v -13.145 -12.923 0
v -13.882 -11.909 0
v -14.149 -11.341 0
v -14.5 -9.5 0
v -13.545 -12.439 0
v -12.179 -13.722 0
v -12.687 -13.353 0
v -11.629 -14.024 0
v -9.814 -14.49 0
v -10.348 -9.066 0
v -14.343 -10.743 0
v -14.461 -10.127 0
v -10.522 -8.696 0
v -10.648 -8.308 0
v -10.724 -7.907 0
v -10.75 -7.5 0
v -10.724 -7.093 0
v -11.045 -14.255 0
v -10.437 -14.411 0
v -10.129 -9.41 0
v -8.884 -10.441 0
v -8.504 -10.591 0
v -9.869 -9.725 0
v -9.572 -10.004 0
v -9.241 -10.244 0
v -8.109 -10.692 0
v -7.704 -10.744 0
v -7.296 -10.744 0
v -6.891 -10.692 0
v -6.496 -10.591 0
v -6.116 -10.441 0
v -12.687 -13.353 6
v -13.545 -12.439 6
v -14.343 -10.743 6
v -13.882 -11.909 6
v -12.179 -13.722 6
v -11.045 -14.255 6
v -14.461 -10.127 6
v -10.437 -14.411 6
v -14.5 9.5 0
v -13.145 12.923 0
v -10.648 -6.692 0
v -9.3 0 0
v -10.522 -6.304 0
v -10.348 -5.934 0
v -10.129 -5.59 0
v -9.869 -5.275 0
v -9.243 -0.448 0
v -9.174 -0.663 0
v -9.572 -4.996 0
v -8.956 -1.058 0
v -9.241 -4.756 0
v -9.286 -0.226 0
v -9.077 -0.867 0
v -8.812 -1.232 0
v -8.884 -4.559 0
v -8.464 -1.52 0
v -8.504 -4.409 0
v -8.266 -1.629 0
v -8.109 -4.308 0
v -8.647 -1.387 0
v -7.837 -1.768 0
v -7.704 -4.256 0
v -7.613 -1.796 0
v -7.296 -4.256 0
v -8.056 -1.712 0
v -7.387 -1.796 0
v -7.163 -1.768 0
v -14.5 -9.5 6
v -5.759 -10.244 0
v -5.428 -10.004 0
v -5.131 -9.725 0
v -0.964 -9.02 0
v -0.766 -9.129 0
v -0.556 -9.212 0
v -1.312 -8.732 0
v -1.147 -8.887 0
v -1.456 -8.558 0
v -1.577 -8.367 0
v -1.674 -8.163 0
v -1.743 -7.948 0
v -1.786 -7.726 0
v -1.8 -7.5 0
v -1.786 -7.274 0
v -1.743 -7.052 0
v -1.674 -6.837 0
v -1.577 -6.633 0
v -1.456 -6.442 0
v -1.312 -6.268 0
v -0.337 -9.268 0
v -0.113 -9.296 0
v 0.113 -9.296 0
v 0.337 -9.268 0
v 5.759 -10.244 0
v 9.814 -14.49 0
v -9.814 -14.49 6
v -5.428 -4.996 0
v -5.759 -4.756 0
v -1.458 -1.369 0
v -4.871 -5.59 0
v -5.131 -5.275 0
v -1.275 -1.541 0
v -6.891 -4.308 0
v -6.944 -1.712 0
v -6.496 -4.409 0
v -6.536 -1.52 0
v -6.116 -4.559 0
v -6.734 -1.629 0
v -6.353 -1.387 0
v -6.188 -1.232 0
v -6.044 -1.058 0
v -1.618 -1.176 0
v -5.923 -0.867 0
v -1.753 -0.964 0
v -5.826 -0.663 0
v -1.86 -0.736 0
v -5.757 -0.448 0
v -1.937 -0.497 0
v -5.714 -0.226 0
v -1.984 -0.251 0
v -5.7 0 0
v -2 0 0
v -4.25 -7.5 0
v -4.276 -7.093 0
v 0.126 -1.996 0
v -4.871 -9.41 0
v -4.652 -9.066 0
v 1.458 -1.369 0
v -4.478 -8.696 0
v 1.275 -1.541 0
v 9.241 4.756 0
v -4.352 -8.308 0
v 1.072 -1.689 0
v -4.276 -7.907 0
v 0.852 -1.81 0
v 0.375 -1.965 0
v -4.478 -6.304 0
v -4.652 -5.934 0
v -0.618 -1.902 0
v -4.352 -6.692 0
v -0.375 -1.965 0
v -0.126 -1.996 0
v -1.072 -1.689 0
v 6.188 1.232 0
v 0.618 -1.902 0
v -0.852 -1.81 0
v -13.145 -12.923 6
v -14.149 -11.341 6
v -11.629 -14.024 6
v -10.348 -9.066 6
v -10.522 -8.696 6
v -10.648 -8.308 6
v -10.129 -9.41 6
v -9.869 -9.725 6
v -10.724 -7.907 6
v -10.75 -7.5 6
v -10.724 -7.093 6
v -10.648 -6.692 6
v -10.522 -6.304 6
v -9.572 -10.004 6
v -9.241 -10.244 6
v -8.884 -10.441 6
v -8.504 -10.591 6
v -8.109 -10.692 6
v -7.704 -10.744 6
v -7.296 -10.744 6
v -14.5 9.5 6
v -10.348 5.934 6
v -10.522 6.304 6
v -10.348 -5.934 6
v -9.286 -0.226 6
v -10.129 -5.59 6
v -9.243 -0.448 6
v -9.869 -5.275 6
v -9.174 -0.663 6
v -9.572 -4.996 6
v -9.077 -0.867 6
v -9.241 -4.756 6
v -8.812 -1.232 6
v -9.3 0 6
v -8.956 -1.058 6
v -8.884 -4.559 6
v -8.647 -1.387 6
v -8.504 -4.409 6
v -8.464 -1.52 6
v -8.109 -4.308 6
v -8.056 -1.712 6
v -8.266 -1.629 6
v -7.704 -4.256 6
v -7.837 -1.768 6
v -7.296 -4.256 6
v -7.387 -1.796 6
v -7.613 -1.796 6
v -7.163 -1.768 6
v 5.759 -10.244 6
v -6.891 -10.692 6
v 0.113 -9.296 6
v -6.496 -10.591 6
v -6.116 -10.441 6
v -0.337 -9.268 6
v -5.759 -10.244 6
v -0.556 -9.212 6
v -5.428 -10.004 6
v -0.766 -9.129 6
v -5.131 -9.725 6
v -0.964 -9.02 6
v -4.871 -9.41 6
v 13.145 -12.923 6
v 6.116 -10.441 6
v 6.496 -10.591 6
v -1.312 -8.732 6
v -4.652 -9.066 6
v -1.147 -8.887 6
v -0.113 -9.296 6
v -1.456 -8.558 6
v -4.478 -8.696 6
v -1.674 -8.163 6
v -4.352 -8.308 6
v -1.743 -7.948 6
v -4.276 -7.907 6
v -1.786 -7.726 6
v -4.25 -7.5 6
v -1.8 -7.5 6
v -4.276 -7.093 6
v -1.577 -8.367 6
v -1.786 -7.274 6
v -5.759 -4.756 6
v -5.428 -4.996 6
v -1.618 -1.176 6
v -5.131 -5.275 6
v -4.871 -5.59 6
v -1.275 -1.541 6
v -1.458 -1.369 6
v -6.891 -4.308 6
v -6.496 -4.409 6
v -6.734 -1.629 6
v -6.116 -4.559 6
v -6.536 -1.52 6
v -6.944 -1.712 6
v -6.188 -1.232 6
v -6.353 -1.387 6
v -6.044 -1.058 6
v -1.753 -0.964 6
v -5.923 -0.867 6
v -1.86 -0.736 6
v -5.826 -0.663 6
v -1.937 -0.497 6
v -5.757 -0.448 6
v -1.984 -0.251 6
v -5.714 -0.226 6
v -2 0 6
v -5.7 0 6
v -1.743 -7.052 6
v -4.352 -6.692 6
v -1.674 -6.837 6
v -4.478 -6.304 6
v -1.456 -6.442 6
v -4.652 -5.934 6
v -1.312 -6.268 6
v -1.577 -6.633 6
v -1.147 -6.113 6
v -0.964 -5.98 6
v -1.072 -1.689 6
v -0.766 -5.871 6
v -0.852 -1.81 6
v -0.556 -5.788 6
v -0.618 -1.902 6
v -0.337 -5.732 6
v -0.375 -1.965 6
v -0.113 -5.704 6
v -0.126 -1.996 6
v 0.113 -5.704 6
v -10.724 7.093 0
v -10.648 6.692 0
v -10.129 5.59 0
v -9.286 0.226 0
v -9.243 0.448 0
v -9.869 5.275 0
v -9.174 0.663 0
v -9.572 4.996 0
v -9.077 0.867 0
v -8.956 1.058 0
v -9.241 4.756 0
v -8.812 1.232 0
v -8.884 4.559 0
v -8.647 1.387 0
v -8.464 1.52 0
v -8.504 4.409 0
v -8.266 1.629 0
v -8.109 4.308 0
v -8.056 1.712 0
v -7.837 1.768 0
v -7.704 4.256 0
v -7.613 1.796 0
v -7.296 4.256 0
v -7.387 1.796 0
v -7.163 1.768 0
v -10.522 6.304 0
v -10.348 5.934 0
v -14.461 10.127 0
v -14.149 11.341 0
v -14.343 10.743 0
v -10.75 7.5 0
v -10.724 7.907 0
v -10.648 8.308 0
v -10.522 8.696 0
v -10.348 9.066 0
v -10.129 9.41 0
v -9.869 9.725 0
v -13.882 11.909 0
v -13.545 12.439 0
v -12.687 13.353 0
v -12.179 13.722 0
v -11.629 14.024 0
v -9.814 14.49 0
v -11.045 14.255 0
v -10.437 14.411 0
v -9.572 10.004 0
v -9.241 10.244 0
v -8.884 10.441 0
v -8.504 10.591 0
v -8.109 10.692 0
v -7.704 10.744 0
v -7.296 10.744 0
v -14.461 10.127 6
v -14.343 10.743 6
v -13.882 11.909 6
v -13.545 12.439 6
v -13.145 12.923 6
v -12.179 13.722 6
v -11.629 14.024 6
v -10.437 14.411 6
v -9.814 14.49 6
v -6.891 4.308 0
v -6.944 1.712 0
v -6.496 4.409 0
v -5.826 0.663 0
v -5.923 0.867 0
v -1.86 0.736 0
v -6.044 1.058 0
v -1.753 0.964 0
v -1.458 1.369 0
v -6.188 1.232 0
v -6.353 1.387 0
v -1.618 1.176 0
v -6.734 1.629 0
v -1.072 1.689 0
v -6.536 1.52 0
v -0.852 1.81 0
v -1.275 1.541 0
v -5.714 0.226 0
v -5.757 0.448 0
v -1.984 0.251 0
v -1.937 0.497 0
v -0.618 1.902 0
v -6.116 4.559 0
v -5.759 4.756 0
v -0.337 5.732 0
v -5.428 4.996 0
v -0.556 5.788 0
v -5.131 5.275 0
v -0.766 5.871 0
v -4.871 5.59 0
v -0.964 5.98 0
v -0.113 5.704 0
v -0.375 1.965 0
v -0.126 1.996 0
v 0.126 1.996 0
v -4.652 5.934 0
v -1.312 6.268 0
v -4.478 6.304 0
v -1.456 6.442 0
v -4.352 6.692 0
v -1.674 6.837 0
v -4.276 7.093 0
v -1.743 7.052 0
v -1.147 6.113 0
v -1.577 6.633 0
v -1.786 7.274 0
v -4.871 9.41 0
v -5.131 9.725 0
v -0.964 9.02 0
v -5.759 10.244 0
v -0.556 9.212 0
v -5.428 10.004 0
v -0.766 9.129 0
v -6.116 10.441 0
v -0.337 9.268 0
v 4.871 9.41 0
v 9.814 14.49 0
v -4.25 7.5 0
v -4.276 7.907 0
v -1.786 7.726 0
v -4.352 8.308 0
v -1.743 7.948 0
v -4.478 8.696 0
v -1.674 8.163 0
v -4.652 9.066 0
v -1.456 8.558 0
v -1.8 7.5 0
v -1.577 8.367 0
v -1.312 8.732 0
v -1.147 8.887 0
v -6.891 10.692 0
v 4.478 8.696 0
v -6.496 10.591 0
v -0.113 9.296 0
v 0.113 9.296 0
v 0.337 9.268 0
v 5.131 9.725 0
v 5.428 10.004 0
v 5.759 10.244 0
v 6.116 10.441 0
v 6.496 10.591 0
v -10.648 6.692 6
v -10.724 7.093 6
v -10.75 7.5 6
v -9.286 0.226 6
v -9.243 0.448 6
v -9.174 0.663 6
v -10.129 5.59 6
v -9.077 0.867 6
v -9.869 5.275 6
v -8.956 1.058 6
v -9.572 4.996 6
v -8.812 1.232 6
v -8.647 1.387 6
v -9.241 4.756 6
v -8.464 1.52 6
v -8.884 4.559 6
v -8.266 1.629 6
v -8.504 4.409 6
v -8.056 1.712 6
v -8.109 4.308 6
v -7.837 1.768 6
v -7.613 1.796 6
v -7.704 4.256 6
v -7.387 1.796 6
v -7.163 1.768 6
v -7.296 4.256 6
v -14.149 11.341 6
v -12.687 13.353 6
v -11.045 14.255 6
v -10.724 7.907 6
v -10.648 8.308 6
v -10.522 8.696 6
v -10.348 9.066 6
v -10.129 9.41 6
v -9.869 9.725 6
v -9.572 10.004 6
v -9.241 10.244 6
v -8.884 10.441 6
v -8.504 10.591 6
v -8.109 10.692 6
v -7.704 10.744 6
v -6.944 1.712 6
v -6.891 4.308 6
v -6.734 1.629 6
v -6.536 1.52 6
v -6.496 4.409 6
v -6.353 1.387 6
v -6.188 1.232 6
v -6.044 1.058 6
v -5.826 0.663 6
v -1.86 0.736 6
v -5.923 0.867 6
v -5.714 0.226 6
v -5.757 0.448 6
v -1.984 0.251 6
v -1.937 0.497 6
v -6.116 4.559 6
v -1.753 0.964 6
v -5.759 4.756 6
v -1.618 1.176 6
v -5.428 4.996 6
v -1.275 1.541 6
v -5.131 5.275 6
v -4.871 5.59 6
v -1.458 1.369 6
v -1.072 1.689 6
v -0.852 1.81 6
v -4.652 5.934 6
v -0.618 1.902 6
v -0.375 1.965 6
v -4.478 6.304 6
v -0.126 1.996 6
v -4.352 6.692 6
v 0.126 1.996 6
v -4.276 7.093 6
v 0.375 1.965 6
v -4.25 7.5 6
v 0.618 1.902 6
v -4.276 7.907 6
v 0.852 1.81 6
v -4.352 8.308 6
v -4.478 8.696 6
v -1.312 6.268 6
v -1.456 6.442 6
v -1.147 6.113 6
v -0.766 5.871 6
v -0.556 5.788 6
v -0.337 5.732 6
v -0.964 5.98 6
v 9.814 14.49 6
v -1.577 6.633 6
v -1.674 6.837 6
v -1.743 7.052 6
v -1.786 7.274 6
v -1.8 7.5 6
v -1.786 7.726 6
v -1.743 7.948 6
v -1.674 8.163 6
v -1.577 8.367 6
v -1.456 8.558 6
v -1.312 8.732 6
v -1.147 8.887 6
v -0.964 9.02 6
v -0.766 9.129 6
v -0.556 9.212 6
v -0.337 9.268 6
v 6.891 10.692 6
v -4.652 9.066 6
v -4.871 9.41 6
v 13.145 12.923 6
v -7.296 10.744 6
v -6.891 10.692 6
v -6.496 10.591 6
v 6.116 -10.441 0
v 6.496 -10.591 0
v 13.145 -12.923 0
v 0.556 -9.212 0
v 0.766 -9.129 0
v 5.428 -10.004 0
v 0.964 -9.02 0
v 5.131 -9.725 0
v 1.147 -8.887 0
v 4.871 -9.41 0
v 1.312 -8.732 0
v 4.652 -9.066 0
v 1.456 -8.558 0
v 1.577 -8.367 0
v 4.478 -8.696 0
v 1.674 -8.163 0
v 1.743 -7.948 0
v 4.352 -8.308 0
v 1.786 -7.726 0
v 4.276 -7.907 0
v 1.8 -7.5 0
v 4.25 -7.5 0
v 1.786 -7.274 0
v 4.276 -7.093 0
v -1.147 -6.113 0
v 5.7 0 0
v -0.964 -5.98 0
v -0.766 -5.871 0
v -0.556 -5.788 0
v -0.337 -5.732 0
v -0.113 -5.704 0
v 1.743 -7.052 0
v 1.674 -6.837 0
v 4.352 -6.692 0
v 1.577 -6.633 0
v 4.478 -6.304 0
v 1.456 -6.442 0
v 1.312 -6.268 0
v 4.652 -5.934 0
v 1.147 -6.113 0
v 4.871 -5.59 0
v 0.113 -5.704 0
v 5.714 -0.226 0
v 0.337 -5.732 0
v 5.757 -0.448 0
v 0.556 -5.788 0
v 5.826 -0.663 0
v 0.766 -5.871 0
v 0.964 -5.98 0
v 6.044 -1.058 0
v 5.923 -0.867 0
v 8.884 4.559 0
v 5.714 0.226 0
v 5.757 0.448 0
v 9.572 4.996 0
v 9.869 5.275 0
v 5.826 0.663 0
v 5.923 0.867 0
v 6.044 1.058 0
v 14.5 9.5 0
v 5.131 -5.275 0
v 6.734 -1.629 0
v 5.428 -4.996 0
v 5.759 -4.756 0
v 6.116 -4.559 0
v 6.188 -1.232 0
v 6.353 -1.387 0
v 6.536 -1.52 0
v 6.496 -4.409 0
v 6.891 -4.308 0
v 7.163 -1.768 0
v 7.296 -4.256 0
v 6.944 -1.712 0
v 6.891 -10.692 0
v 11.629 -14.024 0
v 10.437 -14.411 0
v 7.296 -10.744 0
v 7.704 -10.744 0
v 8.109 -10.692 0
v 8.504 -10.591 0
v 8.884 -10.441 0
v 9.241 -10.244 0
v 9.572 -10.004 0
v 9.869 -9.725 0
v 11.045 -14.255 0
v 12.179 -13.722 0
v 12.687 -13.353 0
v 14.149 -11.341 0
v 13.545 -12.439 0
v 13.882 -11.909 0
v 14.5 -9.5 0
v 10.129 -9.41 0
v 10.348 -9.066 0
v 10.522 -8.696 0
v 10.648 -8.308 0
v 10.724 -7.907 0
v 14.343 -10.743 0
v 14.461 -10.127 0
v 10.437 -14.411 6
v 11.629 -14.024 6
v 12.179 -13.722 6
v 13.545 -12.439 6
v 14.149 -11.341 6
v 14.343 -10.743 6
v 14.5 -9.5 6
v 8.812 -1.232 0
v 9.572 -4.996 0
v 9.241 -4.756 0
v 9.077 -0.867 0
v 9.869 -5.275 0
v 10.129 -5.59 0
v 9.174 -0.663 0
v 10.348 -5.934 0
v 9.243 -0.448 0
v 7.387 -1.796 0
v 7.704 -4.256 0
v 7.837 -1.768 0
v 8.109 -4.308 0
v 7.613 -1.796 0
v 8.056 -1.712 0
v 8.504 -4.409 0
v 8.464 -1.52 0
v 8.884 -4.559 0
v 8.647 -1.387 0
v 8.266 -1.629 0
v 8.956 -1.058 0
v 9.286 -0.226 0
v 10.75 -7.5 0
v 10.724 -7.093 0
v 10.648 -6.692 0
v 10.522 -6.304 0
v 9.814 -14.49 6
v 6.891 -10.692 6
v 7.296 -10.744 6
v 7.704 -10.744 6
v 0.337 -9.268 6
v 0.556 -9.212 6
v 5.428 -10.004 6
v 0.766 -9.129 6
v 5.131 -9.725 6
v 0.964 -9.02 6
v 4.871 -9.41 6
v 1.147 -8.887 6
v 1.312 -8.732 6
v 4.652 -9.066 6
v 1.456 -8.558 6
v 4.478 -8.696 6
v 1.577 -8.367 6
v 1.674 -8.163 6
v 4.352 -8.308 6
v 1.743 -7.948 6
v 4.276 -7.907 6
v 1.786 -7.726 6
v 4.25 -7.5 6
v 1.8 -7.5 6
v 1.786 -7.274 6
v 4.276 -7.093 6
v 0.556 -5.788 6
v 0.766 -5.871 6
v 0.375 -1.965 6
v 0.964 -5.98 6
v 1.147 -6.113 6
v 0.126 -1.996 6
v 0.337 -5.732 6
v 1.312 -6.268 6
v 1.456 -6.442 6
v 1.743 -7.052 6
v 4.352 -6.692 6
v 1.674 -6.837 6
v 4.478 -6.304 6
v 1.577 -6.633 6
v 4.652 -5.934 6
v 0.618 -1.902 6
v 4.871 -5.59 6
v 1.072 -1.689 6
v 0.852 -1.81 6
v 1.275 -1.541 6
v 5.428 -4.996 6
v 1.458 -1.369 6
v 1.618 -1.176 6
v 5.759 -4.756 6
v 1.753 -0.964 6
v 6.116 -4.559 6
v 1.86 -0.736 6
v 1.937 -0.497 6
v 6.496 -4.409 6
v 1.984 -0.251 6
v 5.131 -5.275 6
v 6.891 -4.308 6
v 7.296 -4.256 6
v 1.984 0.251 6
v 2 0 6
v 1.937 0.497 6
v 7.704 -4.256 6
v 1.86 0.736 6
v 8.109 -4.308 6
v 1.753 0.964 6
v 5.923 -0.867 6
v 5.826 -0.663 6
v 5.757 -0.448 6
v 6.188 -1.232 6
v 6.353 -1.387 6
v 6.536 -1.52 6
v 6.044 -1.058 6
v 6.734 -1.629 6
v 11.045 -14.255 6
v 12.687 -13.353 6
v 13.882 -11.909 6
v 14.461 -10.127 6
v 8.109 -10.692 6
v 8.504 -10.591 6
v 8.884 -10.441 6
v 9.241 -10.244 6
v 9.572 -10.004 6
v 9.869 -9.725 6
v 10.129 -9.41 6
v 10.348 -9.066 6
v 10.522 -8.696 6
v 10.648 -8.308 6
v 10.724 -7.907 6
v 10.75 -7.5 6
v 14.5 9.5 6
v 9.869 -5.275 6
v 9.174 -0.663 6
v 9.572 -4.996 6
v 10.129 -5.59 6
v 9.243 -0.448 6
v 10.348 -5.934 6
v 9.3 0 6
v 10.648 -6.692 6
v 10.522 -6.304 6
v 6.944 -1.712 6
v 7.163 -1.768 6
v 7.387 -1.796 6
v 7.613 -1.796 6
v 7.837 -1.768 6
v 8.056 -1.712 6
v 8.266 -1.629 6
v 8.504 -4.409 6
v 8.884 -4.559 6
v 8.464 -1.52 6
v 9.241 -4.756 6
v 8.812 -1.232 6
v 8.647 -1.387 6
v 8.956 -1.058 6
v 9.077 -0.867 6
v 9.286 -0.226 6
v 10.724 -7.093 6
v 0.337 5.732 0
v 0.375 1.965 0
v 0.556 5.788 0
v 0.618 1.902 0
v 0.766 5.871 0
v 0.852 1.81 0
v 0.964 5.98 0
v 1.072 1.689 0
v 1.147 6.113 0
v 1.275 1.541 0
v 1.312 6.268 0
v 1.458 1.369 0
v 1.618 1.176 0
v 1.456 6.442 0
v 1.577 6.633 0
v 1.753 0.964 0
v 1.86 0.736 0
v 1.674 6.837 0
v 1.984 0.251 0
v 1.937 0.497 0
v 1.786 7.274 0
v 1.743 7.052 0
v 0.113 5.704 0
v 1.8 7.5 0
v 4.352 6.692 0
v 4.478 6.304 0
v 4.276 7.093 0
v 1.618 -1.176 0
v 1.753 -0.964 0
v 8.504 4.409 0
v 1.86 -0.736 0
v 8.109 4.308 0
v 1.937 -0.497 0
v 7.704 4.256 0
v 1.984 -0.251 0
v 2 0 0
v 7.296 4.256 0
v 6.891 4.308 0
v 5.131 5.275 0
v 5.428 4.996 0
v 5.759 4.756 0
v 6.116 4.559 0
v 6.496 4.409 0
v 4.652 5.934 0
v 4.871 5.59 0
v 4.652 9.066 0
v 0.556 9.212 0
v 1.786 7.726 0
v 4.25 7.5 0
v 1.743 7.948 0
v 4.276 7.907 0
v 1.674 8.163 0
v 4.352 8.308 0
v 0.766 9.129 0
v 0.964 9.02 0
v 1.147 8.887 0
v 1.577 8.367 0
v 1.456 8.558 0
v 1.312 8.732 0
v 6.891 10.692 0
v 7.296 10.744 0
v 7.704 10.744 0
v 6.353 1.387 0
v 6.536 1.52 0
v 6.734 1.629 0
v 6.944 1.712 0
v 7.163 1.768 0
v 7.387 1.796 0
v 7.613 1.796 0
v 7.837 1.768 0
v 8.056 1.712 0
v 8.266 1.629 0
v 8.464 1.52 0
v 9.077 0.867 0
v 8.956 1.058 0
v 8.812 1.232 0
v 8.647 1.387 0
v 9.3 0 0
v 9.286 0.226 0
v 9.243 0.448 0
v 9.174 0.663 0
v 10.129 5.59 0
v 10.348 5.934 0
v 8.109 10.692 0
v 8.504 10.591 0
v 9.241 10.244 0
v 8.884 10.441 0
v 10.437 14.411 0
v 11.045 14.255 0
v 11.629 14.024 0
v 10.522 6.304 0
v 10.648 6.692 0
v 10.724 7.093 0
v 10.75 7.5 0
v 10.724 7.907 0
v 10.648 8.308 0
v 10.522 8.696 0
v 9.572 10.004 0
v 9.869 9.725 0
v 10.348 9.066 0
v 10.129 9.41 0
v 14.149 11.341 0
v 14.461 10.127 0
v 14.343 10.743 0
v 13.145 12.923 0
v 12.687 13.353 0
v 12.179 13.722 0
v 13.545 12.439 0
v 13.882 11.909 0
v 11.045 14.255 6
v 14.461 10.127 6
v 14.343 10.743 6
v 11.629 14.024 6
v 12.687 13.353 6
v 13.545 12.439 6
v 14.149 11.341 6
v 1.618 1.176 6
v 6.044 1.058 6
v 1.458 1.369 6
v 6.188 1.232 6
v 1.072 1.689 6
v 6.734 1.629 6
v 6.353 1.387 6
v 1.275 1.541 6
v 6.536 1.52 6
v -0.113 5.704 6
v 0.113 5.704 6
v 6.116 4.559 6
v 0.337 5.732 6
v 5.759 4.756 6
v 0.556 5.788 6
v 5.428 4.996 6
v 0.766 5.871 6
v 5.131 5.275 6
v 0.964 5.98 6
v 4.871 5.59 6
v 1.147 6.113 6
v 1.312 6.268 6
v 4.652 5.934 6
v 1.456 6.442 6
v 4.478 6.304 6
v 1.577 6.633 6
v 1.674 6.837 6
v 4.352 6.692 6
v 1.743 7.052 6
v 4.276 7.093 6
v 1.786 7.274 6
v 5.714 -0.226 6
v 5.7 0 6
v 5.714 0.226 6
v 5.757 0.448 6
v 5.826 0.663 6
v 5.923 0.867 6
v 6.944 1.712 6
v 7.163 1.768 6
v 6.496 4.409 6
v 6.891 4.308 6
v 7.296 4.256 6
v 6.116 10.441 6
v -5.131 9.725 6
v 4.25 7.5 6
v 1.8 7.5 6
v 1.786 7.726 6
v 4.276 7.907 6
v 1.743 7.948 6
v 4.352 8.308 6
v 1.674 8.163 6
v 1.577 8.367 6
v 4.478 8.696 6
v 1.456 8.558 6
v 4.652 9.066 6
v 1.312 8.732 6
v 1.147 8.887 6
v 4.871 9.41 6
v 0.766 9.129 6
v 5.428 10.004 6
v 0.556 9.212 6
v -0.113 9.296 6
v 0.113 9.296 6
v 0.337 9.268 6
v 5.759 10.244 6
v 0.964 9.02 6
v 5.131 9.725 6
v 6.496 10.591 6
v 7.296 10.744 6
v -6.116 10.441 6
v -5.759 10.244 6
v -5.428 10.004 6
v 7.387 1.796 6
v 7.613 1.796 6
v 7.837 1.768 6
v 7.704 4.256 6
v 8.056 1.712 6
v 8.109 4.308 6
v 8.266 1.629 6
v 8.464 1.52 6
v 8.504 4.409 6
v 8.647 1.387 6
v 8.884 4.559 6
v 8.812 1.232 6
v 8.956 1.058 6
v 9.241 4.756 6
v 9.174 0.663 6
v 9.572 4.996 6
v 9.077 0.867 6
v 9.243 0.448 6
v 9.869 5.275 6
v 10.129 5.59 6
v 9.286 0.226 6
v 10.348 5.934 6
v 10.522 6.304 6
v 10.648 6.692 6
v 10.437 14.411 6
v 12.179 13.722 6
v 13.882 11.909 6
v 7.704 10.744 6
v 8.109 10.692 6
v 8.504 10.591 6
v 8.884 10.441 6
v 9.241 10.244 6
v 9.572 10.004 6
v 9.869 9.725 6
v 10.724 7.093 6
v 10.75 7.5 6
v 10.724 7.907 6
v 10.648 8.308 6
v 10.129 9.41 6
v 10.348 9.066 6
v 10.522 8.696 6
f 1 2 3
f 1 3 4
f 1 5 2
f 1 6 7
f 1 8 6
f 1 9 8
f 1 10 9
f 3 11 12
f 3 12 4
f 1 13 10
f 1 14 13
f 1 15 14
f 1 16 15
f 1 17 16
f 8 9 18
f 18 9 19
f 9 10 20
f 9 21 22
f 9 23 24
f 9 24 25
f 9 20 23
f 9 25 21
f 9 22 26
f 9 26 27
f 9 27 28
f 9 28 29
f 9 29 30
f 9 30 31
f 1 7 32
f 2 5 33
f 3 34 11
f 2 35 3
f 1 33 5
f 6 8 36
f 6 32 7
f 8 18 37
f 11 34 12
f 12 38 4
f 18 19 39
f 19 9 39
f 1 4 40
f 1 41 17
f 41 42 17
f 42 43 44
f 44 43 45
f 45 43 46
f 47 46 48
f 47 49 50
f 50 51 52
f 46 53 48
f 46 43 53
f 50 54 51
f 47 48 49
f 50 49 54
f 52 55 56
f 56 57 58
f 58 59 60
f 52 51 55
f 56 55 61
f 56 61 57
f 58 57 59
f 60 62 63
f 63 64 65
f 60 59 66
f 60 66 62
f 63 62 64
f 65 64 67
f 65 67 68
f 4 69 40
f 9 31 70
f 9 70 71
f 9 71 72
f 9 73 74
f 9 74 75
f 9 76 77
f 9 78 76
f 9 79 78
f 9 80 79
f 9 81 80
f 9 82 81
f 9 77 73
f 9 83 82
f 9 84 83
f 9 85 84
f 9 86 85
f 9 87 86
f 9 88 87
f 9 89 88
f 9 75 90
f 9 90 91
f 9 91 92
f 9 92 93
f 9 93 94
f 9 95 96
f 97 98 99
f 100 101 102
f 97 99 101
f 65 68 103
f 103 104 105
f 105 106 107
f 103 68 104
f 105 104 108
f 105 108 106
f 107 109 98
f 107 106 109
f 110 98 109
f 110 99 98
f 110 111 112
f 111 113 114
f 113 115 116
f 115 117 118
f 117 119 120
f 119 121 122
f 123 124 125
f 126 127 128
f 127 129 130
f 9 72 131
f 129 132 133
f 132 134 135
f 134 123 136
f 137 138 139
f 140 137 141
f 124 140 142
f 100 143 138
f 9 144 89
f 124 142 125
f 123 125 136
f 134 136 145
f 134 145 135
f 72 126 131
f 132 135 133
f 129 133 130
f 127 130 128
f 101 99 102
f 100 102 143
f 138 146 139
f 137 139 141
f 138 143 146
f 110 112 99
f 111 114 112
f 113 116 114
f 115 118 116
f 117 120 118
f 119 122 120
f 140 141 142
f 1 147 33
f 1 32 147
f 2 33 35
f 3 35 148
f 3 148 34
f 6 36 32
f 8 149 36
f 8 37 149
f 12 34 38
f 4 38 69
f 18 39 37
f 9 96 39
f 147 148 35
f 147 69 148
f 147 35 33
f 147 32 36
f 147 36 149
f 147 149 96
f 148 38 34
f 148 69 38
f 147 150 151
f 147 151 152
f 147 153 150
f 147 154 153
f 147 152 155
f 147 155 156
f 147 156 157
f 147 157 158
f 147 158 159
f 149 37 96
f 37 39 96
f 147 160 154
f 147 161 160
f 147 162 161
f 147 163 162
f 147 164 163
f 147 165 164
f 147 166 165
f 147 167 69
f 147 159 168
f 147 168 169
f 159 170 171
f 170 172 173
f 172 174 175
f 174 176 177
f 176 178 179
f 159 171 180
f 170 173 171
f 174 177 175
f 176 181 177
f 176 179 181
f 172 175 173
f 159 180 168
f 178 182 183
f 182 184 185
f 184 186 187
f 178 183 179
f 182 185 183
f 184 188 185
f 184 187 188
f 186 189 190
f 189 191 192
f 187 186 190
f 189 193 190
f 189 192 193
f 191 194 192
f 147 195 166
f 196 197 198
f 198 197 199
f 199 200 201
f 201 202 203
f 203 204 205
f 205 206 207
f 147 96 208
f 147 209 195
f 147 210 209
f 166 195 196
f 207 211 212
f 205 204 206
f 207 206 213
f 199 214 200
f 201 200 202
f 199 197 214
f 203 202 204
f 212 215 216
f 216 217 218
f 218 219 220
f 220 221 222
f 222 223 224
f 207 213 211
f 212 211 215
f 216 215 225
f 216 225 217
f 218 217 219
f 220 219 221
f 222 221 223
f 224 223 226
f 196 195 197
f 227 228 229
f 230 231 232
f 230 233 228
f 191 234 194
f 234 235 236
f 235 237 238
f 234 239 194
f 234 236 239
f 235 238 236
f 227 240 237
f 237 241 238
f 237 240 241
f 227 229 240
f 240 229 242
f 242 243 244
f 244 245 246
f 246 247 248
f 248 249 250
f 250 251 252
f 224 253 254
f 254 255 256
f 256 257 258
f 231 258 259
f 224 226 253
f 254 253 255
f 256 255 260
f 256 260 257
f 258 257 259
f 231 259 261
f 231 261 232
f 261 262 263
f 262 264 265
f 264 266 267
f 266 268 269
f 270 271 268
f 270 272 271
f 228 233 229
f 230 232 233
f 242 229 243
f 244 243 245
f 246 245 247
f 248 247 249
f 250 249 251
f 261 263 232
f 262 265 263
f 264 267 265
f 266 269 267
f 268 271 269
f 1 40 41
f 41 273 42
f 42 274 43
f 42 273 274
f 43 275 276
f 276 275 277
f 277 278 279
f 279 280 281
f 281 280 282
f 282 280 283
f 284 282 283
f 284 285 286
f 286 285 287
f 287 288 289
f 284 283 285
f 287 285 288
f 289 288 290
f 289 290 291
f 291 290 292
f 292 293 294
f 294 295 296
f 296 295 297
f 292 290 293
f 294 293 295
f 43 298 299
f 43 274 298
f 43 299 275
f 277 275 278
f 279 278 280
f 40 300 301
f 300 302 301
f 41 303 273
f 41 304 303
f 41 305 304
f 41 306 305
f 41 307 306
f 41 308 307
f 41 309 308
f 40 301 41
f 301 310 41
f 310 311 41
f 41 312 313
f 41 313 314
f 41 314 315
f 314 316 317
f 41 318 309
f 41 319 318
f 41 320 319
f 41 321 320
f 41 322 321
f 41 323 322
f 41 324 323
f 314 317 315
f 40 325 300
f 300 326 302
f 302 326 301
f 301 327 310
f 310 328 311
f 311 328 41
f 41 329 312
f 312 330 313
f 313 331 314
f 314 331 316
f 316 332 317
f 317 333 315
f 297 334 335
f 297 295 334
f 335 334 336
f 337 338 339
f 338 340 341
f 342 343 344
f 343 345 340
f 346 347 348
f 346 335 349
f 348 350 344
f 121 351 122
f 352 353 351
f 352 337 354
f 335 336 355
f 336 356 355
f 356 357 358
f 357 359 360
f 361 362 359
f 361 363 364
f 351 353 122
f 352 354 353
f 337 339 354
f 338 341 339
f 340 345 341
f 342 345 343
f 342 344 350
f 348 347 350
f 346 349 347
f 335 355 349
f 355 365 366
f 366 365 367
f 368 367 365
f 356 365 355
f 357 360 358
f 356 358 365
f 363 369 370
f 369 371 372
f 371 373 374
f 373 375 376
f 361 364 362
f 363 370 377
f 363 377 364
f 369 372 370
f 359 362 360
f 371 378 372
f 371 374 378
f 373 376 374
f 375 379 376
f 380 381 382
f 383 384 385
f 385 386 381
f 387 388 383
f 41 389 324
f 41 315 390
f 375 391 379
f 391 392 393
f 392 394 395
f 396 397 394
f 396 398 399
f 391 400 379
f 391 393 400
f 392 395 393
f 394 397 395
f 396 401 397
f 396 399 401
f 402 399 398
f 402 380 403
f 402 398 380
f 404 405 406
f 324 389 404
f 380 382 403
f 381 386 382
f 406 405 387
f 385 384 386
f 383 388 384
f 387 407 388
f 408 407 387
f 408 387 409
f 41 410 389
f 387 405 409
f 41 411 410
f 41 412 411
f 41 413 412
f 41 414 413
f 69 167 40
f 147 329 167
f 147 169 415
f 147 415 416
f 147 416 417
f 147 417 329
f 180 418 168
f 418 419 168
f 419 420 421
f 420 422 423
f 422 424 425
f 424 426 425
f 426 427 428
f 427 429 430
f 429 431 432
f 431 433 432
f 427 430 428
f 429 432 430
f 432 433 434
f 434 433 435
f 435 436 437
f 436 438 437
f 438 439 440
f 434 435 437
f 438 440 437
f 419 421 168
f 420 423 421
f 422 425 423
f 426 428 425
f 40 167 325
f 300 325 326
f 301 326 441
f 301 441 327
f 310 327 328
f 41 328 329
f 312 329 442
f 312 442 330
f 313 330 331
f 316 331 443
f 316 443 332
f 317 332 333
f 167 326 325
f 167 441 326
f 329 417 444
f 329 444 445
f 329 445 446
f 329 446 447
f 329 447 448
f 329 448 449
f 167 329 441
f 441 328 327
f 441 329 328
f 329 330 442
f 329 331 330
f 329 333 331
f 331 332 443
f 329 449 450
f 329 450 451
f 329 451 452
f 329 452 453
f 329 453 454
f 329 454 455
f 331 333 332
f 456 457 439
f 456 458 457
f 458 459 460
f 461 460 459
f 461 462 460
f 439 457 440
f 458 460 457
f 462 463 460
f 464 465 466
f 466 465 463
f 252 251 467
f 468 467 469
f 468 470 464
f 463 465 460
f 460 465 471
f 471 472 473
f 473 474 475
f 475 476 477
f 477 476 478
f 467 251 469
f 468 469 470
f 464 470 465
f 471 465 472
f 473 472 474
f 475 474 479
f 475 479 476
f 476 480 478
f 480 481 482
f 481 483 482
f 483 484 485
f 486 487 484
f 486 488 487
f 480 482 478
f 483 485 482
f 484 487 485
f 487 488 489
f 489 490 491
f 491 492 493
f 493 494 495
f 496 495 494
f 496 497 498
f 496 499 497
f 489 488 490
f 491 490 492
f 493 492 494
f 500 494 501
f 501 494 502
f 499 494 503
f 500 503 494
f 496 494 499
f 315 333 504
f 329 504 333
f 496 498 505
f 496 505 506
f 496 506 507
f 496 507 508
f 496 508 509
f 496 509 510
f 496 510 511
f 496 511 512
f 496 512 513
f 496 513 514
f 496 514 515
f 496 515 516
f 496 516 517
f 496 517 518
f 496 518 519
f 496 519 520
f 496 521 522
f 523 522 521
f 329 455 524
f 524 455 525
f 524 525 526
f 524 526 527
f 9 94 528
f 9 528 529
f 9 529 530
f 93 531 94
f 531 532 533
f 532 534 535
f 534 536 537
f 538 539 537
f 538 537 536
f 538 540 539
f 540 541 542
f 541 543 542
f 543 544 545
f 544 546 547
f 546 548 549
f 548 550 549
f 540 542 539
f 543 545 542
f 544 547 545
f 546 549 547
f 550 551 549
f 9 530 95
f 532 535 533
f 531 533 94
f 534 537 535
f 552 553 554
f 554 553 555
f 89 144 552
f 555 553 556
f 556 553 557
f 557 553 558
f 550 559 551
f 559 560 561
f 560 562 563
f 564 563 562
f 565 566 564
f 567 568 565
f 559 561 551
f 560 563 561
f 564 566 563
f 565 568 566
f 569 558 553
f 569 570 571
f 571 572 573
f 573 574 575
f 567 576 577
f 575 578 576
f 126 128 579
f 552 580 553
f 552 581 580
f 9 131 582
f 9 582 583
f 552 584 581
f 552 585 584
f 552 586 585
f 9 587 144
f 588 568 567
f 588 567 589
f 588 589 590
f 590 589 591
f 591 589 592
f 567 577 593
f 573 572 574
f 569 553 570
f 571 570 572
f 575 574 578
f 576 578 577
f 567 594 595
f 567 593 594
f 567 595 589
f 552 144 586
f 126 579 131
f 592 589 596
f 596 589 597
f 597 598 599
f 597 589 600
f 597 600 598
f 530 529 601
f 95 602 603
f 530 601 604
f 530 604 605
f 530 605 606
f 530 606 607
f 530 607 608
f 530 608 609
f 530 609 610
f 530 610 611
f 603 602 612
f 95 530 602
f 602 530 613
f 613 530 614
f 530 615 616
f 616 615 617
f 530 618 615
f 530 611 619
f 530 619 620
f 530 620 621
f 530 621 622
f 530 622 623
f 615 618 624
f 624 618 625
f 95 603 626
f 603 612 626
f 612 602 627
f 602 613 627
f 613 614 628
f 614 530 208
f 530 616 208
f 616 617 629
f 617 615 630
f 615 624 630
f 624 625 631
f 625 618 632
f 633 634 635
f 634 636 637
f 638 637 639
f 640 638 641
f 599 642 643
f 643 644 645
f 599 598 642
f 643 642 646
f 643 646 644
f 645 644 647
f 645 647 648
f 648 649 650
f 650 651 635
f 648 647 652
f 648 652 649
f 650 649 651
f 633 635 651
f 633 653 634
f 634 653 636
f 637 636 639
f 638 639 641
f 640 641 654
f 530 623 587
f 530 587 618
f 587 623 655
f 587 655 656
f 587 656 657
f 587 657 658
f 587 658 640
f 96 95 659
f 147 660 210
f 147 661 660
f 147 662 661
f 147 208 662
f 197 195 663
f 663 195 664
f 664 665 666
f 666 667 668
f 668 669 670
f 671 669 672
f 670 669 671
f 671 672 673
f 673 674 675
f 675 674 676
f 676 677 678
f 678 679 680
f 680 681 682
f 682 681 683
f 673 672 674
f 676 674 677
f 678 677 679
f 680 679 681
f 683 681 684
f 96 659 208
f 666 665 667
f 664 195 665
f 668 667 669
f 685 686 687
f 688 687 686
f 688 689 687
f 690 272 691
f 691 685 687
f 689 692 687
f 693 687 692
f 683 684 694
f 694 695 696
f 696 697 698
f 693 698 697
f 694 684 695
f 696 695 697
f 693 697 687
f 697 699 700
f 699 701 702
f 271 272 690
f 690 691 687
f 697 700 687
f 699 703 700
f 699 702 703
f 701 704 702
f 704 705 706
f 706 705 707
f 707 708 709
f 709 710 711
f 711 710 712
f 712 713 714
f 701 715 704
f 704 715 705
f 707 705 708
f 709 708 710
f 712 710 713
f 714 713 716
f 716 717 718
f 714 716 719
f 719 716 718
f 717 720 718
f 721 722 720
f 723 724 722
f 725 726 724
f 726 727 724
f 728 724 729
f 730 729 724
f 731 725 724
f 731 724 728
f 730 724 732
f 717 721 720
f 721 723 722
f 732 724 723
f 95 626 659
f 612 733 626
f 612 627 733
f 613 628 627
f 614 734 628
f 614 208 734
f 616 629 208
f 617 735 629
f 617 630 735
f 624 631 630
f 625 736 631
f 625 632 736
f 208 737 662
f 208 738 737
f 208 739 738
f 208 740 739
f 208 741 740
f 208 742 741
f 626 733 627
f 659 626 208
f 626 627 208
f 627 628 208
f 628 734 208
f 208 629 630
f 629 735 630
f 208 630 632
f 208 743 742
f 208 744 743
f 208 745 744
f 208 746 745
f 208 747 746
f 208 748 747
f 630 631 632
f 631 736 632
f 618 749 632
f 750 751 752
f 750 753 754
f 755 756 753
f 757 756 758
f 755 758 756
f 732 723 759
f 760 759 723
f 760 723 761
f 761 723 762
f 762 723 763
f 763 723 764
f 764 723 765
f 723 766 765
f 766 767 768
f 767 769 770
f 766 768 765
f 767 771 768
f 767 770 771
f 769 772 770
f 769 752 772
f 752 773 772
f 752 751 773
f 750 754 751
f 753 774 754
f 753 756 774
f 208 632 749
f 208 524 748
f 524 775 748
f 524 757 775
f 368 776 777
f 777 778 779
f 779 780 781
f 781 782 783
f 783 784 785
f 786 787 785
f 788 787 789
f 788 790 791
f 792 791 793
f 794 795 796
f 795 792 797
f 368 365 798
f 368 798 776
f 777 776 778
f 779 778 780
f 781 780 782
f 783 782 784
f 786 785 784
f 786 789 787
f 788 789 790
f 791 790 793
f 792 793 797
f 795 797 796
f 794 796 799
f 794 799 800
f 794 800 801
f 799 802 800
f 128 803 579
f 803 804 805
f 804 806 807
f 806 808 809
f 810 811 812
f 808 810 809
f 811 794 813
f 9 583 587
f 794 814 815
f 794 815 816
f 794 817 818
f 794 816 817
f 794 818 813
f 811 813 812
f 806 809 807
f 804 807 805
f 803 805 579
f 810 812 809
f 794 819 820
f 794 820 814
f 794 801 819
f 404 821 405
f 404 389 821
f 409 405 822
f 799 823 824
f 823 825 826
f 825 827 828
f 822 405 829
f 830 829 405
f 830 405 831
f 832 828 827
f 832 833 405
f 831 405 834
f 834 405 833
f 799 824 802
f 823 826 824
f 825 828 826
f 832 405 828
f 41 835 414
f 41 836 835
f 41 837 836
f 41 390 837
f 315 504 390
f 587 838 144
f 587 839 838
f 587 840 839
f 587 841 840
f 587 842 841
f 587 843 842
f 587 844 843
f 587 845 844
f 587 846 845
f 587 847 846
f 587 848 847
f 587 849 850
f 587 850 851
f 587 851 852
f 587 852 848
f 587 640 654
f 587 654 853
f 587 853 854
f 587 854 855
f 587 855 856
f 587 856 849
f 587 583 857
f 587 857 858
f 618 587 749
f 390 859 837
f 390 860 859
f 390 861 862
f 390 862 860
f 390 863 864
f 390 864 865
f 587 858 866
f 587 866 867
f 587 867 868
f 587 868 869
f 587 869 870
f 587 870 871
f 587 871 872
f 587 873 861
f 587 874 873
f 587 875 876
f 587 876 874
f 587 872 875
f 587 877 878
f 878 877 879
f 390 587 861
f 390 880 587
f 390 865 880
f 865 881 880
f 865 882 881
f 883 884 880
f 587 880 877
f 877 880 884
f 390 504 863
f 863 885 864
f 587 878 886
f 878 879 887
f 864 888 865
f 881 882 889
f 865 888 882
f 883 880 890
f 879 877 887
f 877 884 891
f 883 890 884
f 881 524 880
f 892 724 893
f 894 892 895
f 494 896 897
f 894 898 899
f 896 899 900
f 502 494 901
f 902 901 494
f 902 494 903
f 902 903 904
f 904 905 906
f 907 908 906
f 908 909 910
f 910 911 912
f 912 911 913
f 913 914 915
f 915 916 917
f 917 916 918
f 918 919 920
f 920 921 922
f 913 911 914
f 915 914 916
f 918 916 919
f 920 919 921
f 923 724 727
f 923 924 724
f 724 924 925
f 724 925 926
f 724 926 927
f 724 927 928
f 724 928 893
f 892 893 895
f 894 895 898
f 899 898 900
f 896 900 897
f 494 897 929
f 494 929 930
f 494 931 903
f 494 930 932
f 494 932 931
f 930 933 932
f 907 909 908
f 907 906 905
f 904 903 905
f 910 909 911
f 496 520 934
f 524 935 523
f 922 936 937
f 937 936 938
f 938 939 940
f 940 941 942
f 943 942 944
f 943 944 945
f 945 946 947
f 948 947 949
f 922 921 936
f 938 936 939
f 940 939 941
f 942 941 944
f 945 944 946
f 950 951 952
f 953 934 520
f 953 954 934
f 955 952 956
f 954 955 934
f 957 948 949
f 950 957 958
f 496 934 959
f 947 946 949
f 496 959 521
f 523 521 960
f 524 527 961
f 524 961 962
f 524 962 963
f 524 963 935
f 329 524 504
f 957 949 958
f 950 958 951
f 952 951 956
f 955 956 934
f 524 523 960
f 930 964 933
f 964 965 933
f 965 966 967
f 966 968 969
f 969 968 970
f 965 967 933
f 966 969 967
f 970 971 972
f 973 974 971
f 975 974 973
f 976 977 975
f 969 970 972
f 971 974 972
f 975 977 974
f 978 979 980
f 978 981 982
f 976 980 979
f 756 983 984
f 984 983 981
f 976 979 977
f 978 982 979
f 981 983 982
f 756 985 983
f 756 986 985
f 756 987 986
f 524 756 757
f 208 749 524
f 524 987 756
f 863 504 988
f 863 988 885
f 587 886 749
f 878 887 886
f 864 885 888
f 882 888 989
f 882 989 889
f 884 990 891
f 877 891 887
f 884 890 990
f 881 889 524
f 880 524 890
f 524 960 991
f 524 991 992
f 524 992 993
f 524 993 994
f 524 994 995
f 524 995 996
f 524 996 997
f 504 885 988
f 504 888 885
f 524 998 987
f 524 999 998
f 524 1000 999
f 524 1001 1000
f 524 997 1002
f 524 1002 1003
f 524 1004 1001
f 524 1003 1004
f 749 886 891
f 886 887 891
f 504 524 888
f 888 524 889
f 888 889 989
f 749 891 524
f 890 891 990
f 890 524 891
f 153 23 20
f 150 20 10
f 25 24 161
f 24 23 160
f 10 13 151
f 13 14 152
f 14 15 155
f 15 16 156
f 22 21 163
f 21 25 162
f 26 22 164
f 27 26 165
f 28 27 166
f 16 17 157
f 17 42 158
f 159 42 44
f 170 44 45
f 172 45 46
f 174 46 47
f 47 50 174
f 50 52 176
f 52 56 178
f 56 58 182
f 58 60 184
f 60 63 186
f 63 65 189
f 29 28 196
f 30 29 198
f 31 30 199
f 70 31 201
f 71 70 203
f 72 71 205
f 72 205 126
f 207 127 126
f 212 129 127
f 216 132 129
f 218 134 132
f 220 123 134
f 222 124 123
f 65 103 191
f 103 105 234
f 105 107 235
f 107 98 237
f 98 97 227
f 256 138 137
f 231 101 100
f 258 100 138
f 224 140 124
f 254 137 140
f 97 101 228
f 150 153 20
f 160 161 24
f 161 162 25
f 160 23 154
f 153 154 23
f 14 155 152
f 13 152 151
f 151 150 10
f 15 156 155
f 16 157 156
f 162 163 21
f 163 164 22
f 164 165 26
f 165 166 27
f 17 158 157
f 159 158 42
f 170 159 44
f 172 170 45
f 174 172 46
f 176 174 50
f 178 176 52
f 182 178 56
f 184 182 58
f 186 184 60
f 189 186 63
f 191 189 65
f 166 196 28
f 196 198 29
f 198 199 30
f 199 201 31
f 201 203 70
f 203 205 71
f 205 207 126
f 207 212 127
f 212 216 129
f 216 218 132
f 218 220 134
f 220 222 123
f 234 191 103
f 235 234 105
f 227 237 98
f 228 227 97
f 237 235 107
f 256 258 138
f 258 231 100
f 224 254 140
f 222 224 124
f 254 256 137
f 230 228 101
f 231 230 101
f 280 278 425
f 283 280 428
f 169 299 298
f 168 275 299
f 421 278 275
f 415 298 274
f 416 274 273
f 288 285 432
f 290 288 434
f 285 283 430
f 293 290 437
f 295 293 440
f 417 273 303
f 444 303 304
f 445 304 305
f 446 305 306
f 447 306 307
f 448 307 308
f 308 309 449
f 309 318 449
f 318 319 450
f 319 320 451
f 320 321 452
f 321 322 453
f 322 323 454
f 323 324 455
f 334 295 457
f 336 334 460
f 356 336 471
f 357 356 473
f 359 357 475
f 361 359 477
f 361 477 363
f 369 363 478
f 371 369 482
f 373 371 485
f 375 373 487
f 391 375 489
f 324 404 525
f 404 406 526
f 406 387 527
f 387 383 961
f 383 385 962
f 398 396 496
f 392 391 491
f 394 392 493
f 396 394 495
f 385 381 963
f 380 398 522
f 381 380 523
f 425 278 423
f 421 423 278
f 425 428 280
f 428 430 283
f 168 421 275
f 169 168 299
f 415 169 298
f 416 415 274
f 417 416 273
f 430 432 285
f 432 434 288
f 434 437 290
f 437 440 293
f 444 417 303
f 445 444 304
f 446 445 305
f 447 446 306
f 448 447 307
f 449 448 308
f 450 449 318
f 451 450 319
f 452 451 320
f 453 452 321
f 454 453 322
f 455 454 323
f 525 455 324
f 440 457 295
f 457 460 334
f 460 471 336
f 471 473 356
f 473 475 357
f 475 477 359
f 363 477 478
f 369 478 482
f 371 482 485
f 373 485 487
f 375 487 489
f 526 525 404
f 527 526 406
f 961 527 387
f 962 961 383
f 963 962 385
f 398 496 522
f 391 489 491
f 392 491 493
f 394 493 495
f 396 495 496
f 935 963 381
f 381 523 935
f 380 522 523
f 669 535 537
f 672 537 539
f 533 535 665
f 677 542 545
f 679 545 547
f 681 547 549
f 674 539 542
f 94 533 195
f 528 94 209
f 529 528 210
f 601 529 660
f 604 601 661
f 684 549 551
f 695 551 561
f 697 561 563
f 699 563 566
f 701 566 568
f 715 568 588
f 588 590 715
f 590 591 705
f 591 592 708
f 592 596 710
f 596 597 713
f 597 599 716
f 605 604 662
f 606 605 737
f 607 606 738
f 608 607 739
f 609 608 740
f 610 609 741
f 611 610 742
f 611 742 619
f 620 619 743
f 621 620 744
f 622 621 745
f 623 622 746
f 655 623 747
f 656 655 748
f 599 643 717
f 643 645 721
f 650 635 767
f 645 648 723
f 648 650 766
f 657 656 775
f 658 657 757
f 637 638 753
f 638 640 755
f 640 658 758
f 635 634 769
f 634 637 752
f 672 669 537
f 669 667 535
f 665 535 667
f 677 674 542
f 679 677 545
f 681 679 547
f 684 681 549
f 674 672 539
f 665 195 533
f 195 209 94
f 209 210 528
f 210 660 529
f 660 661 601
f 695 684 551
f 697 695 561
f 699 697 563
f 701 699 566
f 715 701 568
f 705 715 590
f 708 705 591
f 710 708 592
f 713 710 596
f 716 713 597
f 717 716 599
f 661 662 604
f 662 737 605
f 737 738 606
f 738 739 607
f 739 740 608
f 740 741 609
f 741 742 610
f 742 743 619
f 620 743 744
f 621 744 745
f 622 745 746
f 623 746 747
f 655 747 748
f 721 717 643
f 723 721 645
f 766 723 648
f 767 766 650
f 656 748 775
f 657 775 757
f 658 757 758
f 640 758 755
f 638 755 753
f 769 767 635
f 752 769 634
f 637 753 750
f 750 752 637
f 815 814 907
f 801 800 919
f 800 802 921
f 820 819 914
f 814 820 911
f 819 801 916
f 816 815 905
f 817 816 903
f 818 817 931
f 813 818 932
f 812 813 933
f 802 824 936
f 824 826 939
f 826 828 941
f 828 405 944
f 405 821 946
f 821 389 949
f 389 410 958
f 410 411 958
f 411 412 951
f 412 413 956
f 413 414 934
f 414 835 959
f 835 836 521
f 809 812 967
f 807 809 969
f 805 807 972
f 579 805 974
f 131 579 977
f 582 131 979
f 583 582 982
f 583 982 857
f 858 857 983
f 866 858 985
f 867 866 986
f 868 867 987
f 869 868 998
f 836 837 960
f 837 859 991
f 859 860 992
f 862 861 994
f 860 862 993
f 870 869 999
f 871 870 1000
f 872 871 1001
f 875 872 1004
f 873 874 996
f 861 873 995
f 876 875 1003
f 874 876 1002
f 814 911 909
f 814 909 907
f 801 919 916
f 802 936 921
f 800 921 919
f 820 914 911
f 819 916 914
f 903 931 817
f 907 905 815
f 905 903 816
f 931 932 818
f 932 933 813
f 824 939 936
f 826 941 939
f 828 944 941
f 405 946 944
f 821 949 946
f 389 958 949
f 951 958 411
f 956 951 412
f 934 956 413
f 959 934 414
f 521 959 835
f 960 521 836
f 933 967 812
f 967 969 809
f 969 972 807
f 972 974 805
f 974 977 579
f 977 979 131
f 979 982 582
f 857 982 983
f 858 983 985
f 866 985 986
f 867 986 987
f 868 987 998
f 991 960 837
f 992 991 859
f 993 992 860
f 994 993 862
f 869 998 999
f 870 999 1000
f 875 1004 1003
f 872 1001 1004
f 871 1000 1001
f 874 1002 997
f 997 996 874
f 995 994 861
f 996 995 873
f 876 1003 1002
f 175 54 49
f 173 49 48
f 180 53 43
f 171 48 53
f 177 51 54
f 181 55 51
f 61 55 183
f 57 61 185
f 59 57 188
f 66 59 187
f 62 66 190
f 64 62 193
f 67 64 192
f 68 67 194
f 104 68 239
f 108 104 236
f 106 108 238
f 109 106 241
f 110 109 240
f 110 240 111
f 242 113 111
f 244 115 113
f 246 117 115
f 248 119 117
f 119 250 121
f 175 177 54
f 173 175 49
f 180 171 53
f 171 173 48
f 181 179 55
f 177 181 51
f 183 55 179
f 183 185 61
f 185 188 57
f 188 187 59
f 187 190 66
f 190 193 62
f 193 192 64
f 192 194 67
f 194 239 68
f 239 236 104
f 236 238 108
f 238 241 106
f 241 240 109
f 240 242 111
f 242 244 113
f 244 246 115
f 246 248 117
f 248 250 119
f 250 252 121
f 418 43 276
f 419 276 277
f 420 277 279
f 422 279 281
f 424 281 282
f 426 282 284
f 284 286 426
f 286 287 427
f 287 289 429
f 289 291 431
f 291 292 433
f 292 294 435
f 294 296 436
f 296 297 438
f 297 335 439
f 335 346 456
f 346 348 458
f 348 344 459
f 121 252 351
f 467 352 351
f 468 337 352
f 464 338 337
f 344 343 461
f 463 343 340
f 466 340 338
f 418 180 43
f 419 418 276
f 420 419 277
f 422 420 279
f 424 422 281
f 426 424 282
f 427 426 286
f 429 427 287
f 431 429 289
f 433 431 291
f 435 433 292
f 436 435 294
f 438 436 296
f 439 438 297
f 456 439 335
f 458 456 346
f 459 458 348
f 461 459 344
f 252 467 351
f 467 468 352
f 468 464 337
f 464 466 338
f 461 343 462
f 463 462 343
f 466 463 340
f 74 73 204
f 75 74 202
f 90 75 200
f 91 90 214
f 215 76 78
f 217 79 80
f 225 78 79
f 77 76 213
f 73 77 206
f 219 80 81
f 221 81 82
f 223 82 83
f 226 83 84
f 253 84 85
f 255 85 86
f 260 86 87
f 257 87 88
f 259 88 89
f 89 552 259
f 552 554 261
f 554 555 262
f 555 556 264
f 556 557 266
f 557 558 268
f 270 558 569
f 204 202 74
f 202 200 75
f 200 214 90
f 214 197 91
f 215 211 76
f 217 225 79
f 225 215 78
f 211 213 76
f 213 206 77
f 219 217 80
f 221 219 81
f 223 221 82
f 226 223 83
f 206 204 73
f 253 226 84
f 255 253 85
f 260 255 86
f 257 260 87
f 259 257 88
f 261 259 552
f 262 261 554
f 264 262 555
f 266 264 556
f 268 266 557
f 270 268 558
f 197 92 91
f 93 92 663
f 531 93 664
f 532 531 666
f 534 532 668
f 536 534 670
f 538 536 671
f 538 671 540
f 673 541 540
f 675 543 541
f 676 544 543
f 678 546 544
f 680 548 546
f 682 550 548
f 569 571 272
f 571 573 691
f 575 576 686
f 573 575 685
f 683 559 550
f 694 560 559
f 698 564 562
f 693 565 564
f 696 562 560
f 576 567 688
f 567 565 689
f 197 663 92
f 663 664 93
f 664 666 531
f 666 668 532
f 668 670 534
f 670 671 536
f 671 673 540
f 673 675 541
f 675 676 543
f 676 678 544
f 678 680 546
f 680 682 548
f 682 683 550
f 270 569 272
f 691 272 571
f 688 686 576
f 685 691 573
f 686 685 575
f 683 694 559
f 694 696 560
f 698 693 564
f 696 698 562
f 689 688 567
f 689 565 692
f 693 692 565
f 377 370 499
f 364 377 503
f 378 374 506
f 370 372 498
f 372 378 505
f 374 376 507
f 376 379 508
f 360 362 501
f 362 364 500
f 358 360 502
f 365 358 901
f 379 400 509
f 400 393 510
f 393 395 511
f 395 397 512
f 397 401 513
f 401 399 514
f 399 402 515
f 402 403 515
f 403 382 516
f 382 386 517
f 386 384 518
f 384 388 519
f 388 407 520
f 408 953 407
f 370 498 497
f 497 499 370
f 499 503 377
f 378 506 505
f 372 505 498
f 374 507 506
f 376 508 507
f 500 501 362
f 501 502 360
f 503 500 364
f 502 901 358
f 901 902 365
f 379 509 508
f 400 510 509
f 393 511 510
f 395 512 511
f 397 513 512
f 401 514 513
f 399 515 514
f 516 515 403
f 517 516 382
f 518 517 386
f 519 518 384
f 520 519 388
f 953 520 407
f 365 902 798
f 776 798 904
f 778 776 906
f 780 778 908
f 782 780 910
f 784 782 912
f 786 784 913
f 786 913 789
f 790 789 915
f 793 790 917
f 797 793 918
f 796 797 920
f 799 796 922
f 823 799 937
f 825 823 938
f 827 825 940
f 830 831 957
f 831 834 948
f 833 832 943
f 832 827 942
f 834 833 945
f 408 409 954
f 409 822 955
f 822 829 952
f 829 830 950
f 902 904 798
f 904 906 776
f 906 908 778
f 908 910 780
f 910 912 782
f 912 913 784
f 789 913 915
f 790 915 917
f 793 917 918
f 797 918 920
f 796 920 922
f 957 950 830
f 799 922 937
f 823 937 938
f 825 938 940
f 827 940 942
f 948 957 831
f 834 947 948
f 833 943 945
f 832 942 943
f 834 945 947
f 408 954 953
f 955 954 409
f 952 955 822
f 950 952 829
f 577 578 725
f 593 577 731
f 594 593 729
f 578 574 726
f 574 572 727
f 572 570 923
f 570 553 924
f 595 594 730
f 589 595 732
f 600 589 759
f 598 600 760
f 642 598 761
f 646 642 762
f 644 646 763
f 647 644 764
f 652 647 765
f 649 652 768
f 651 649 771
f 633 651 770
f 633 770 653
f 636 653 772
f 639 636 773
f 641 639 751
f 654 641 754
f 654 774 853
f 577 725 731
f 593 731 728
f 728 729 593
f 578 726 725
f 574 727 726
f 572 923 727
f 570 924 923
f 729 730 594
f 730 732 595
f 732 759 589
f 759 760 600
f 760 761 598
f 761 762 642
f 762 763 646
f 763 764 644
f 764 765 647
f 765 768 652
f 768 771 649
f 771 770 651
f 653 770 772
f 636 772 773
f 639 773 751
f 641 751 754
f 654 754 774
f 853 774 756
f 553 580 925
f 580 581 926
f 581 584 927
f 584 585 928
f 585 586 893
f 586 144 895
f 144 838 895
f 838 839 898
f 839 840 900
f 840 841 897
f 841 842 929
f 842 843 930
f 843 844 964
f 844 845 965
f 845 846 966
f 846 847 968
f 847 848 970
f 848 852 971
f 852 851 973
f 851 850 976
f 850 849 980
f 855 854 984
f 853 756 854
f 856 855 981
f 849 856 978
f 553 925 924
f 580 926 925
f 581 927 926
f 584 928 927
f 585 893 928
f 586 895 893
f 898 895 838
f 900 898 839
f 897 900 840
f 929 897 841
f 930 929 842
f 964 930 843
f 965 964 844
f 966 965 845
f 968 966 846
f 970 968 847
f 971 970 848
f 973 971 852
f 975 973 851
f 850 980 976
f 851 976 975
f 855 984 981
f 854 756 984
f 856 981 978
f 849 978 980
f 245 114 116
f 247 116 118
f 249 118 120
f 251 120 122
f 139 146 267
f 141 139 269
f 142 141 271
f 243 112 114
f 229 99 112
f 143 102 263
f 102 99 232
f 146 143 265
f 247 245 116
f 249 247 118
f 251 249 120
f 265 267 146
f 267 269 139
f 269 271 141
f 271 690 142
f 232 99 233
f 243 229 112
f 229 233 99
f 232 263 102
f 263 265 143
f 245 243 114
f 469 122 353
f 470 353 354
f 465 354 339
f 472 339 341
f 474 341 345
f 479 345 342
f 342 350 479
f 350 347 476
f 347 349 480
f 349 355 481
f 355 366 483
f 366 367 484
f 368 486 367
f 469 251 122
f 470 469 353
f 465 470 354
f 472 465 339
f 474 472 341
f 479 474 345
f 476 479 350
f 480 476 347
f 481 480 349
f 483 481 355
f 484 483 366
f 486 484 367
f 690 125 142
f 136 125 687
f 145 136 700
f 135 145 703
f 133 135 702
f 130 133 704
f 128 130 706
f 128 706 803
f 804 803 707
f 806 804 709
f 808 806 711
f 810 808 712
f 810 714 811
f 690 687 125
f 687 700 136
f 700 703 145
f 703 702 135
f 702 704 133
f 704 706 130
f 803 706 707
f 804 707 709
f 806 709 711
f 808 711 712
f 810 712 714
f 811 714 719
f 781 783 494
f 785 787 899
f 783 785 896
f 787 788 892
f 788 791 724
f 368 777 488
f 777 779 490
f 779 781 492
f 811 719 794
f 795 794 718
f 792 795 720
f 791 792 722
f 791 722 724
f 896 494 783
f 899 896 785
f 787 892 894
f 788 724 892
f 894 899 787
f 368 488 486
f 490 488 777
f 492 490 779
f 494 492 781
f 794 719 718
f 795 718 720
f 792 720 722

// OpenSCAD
$fn = 50;

difference() {
	union() {
		hull() {
			translate(v = [-9.5, 9.5, 0]) {
				cylinder(h = 6, r = 5);
			}
			translate(v = [9.5, 9.5, 0]) {
				cylinder(h = 6, r = 5);
			}
			translate(v = [-9.5, -9.5, 0]) {
				cylinder(h = 6, r = 5);
			}
			translate(v = [9.5, -9.5, 0]) {
				cylinder(h = 6, r = 5);
			}
		}
	}
	union() {
		translate(v = [-7.5, -7.5, 0]) {
			cylinder(h = 6, r = 3.25);
		}
		translate(v = [-7.5, 7.5, 0]) {
			cylinder(h = 6, r = 3.25);
		}
		translate(v = [7.5, -7.5, 0]) {
			cylinder(h = 6, r = 3.25);
		}
		translate(v = [7.5, 7.5, 0]) {
			cylinder(h = 6, r = 3.25);
		}
		translate(v = [-7.5, 0.0, 0]) {
			cylinder(h = 6, r = 1.8);
		}
		translate(v = [0.0, -7.5, 0]) {
			cylinder(h = 6, r = 1.8);
		}
		translate(v = [0.0, 7.5, 0]) {
			cylinder(h = 6, r = 1.8);
		}
		translate(v = [7.5, 0.0, 0]) {
			cylinder(h = 6, r = 1.8);
		}
		cylinder(h = 6, r = 2.0);
	}
}
